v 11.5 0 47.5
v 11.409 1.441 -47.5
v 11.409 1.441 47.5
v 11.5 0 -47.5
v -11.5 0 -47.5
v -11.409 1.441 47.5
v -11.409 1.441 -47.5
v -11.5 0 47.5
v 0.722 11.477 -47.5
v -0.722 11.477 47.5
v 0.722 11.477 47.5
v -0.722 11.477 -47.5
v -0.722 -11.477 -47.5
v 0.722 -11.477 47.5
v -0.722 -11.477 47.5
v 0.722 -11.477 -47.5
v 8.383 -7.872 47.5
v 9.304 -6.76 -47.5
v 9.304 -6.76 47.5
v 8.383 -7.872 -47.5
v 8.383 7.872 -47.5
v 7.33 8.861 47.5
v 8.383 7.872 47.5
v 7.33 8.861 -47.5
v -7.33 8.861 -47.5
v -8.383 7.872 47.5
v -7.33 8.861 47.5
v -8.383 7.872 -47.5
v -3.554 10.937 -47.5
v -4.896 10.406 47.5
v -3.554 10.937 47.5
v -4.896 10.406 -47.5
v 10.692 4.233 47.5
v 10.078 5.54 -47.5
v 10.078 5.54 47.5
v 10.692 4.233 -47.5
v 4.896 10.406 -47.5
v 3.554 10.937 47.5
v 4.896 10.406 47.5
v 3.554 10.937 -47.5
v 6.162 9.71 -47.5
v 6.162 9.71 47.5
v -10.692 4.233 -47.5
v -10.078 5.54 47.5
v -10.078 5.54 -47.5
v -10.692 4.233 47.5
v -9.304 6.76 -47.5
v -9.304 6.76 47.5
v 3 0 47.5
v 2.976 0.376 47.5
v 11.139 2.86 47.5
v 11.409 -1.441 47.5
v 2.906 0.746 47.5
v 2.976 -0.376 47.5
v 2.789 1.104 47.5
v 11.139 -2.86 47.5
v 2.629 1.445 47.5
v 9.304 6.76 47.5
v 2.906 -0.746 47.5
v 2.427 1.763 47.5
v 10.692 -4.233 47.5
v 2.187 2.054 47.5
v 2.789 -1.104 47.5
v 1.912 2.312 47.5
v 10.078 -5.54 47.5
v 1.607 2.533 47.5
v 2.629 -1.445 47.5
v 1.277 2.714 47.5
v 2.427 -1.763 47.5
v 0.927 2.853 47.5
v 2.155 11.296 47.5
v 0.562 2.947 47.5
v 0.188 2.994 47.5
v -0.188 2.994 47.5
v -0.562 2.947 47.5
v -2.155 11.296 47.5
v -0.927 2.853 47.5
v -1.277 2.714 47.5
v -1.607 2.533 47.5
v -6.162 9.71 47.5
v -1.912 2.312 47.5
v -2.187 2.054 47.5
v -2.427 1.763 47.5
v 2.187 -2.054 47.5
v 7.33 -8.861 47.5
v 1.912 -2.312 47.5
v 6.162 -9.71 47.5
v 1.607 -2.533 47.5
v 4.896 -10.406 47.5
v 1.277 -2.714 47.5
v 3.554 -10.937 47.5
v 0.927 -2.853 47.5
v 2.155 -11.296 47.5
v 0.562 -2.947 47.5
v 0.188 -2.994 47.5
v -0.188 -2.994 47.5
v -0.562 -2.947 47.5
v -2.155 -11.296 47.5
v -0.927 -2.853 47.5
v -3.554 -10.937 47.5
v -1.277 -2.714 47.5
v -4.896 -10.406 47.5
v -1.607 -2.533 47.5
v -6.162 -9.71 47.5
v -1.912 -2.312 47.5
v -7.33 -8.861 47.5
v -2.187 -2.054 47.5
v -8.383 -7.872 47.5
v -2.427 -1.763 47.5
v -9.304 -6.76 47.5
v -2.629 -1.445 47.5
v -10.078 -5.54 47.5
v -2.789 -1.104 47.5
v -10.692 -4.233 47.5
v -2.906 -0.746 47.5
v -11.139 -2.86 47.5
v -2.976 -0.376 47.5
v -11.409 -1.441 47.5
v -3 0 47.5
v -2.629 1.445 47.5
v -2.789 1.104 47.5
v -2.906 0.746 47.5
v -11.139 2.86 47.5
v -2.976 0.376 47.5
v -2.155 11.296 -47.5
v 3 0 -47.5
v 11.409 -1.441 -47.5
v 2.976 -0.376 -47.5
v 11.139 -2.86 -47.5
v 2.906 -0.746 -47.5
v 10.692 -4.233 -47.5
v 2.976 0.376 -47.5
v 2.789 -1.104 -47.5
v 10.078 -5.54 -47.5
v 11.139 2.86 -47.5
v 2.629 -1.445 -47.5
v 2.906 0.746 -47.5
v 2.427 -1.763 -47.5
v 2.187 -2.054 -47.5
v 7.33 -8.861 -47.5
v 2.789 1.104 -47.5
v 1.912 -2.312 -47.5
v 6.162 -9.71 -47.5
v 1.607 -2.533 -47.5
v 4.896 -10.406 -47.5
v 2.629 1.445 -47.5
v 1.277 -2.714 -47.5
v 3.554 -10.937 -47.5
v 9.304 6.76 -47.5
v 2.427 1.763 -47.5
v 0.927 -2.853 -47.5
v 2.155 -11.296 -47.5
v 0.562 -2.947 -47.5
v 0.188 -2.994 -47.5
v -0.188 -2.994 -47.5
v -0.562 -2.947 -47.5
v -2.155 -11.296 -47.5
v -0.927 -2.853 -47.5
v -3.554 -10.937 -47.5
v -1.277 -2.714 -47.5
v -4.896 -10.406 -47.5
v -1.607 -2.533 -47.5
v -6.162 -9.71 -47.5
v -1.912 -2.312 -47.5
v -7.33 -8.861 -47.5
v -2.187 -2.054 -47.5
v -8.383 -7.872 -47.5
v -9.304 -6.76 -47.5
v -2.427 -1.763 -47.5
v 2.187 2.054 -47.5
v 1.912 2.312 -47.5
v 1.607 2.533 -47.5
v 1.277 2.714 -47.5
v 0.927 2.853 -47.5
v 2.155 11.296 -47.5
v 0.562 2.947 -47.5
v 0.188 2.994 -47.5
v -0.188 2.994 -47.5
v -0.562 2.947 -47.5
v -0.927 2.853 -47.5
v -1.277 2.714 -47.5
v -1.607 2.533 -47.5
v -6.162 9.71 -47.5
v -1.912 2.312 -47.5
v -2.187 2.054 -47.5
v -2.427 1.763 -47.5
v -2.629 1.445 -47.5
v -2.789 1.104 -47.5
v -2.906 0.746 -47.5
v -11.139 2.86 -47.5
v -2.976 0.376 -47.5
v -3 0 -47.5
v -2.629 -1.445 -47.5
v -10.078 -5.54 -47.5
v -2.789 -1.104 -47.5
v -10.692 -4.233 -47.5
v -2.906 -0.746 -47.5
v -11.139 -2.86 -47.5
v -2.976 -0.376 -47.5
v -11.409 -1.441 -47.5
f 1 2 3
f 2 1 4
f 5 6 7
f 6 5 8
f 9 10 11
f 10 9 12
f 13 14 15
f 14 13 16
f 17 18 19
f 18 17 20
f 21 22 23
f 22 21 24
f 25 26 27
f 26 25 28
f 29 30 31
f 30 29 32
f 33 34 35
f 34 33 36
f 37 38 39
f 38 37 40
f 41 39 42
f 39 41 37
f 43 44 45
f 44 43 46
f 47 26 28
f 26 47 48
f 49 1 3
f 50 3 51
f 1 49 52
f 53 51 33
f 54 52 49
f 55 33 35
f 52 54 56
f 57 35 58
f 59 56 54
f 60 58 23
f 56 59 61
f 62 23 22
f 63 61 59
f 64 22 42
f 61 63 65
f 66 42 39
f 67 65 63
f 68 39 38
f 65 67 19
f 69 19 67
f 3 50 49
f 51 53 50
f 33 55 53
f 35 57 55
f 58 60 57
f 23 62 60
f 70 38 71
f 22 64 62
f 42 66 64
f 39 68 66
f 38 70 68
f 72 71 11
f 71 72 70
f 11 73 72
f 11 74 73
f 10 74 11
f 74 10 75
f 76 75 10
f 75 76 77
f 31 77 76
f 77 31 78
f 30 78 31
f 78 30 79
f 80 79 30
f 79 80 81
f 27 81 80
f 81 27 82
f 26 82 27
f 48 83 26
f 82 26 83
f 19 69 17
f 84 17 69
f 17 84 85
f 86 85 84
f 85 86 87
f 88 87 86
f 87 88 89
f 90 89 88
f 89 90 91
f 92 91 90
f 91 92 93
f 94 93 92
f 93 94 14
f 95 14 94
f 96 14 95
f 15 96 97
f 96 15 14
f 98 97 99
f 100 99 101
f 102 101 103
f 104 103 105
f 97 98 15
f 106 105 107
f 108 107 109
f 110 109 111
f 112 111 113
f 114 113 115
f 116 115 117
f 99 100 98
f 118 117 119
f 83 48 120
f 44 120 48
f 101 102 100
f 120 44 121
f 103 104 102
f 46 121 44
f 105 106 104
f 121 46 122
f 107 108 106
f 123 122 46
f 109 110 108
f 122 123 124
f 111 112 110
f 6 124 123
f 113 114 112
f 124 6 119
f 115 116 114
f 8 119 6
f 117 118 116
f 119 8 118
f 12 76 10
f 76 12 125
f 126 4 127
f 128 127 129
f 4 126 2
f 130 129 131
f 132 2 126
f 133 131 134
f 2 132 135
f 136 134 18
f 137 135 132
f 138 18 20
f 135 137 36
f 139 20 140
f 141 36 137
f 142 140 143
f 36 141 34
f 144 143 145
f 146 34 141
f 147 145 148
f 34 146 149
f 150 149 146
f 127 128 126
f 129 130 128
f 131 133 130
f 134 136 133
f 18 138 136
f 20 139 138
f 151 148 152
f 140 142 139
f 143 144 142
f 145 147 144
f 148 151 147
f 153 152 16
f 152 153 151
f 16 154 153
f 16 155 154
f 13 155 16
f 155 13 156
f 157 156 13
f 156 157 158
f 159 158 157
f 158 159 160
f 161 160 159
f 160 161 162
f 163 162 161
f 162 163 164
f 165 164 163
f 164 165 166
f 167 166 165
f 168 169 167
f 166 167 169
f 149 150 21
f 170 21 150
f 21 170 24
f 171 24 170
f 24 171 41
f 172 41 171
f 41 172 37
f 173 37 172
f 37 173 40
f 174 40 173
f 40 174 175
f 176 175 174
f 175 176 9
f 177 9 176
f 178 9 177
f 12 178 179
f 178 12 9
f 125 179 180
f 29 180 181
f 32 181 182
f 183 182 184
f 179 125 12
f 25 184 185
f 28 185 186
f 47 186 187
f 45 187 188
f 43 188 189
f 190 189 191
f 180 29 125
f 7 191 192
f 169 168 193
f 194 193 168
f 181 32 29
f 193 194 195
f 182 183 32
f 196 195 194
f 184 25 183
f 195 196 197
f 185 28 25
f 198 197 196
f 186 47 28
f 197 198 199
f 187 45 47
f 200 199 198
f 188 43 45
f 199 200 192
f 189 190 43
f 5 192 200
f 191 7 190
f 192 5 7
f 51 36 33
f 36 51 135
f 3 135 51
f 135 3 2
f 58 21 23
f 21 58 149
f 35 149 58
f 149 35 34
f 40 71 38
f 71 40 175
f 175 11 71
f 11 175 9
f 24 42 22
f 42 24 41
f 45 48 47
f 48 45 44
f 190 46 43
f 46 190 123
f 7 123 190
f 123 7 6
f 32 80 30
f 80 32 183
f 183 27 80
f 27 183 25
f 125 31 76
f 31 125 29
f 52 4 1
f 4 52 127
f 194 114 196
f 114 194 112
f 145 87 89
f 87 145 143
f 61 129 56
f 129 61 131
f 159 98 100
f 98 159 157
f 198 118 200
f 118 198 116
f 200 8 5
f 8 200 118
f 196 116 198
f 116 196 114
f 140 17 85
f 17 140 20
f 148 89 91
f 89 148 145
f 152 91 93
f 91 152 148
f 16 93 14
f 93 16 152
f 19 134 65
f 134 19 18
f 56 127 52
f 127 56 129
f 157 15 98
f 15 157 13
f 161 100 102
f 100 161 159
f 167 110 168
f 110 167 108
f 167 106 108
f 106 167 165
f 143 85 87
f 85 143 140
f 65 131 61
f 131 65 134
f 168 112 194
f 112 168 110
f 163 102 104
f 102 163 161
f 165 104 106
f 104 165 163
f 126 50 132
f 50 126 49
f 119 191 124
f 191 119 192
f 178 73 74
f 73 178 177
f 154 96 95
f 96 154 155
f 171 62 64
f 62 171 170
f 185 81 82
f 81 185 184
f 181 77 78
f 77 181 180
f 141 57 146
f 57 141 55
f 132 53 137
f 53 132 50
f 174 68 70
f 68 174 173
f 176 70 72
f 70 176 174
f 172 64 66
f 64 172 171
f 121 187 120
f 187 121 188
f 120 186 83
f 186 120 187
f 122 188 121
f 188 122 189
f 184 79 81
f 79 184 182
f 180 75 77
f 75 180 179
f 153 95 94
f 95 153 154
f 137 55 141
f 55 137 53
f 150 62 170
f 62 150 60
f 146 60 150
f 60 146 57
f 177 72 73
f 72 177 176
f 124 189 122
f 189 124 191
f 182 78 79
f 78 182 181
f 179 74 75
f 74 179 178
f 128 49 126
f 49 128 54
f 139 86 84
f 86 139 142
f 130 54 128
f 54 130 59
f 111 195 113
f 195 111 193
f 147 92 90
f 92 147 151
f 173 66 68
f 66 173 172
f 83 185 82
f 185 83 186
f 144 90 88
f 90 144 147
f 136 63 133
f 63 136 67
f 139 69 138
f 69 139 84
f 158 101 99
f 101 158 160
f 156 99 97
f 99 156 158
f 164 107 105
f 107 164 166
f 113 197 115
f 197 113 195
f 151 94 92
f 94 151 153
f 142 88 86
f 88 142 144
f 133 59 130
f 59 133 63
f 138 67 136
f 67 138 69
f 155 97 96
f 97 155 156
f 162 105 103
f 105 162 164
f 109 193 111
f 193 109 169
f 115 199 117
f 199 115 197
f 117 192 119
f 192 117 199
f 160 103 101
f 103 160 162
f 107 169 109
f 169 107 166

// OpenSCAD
$fn = 50;


difference() {
	union() {
		translate(v = [0, 0, -47.5000000000]) {
			cylinder(h = 95, r = 11.5000000000);
		}
	}
	union() {
		translate(v = [0, 0, -100.0000000000]) {
			cylinder(h = 200, r = 3);
		}
	}
}
